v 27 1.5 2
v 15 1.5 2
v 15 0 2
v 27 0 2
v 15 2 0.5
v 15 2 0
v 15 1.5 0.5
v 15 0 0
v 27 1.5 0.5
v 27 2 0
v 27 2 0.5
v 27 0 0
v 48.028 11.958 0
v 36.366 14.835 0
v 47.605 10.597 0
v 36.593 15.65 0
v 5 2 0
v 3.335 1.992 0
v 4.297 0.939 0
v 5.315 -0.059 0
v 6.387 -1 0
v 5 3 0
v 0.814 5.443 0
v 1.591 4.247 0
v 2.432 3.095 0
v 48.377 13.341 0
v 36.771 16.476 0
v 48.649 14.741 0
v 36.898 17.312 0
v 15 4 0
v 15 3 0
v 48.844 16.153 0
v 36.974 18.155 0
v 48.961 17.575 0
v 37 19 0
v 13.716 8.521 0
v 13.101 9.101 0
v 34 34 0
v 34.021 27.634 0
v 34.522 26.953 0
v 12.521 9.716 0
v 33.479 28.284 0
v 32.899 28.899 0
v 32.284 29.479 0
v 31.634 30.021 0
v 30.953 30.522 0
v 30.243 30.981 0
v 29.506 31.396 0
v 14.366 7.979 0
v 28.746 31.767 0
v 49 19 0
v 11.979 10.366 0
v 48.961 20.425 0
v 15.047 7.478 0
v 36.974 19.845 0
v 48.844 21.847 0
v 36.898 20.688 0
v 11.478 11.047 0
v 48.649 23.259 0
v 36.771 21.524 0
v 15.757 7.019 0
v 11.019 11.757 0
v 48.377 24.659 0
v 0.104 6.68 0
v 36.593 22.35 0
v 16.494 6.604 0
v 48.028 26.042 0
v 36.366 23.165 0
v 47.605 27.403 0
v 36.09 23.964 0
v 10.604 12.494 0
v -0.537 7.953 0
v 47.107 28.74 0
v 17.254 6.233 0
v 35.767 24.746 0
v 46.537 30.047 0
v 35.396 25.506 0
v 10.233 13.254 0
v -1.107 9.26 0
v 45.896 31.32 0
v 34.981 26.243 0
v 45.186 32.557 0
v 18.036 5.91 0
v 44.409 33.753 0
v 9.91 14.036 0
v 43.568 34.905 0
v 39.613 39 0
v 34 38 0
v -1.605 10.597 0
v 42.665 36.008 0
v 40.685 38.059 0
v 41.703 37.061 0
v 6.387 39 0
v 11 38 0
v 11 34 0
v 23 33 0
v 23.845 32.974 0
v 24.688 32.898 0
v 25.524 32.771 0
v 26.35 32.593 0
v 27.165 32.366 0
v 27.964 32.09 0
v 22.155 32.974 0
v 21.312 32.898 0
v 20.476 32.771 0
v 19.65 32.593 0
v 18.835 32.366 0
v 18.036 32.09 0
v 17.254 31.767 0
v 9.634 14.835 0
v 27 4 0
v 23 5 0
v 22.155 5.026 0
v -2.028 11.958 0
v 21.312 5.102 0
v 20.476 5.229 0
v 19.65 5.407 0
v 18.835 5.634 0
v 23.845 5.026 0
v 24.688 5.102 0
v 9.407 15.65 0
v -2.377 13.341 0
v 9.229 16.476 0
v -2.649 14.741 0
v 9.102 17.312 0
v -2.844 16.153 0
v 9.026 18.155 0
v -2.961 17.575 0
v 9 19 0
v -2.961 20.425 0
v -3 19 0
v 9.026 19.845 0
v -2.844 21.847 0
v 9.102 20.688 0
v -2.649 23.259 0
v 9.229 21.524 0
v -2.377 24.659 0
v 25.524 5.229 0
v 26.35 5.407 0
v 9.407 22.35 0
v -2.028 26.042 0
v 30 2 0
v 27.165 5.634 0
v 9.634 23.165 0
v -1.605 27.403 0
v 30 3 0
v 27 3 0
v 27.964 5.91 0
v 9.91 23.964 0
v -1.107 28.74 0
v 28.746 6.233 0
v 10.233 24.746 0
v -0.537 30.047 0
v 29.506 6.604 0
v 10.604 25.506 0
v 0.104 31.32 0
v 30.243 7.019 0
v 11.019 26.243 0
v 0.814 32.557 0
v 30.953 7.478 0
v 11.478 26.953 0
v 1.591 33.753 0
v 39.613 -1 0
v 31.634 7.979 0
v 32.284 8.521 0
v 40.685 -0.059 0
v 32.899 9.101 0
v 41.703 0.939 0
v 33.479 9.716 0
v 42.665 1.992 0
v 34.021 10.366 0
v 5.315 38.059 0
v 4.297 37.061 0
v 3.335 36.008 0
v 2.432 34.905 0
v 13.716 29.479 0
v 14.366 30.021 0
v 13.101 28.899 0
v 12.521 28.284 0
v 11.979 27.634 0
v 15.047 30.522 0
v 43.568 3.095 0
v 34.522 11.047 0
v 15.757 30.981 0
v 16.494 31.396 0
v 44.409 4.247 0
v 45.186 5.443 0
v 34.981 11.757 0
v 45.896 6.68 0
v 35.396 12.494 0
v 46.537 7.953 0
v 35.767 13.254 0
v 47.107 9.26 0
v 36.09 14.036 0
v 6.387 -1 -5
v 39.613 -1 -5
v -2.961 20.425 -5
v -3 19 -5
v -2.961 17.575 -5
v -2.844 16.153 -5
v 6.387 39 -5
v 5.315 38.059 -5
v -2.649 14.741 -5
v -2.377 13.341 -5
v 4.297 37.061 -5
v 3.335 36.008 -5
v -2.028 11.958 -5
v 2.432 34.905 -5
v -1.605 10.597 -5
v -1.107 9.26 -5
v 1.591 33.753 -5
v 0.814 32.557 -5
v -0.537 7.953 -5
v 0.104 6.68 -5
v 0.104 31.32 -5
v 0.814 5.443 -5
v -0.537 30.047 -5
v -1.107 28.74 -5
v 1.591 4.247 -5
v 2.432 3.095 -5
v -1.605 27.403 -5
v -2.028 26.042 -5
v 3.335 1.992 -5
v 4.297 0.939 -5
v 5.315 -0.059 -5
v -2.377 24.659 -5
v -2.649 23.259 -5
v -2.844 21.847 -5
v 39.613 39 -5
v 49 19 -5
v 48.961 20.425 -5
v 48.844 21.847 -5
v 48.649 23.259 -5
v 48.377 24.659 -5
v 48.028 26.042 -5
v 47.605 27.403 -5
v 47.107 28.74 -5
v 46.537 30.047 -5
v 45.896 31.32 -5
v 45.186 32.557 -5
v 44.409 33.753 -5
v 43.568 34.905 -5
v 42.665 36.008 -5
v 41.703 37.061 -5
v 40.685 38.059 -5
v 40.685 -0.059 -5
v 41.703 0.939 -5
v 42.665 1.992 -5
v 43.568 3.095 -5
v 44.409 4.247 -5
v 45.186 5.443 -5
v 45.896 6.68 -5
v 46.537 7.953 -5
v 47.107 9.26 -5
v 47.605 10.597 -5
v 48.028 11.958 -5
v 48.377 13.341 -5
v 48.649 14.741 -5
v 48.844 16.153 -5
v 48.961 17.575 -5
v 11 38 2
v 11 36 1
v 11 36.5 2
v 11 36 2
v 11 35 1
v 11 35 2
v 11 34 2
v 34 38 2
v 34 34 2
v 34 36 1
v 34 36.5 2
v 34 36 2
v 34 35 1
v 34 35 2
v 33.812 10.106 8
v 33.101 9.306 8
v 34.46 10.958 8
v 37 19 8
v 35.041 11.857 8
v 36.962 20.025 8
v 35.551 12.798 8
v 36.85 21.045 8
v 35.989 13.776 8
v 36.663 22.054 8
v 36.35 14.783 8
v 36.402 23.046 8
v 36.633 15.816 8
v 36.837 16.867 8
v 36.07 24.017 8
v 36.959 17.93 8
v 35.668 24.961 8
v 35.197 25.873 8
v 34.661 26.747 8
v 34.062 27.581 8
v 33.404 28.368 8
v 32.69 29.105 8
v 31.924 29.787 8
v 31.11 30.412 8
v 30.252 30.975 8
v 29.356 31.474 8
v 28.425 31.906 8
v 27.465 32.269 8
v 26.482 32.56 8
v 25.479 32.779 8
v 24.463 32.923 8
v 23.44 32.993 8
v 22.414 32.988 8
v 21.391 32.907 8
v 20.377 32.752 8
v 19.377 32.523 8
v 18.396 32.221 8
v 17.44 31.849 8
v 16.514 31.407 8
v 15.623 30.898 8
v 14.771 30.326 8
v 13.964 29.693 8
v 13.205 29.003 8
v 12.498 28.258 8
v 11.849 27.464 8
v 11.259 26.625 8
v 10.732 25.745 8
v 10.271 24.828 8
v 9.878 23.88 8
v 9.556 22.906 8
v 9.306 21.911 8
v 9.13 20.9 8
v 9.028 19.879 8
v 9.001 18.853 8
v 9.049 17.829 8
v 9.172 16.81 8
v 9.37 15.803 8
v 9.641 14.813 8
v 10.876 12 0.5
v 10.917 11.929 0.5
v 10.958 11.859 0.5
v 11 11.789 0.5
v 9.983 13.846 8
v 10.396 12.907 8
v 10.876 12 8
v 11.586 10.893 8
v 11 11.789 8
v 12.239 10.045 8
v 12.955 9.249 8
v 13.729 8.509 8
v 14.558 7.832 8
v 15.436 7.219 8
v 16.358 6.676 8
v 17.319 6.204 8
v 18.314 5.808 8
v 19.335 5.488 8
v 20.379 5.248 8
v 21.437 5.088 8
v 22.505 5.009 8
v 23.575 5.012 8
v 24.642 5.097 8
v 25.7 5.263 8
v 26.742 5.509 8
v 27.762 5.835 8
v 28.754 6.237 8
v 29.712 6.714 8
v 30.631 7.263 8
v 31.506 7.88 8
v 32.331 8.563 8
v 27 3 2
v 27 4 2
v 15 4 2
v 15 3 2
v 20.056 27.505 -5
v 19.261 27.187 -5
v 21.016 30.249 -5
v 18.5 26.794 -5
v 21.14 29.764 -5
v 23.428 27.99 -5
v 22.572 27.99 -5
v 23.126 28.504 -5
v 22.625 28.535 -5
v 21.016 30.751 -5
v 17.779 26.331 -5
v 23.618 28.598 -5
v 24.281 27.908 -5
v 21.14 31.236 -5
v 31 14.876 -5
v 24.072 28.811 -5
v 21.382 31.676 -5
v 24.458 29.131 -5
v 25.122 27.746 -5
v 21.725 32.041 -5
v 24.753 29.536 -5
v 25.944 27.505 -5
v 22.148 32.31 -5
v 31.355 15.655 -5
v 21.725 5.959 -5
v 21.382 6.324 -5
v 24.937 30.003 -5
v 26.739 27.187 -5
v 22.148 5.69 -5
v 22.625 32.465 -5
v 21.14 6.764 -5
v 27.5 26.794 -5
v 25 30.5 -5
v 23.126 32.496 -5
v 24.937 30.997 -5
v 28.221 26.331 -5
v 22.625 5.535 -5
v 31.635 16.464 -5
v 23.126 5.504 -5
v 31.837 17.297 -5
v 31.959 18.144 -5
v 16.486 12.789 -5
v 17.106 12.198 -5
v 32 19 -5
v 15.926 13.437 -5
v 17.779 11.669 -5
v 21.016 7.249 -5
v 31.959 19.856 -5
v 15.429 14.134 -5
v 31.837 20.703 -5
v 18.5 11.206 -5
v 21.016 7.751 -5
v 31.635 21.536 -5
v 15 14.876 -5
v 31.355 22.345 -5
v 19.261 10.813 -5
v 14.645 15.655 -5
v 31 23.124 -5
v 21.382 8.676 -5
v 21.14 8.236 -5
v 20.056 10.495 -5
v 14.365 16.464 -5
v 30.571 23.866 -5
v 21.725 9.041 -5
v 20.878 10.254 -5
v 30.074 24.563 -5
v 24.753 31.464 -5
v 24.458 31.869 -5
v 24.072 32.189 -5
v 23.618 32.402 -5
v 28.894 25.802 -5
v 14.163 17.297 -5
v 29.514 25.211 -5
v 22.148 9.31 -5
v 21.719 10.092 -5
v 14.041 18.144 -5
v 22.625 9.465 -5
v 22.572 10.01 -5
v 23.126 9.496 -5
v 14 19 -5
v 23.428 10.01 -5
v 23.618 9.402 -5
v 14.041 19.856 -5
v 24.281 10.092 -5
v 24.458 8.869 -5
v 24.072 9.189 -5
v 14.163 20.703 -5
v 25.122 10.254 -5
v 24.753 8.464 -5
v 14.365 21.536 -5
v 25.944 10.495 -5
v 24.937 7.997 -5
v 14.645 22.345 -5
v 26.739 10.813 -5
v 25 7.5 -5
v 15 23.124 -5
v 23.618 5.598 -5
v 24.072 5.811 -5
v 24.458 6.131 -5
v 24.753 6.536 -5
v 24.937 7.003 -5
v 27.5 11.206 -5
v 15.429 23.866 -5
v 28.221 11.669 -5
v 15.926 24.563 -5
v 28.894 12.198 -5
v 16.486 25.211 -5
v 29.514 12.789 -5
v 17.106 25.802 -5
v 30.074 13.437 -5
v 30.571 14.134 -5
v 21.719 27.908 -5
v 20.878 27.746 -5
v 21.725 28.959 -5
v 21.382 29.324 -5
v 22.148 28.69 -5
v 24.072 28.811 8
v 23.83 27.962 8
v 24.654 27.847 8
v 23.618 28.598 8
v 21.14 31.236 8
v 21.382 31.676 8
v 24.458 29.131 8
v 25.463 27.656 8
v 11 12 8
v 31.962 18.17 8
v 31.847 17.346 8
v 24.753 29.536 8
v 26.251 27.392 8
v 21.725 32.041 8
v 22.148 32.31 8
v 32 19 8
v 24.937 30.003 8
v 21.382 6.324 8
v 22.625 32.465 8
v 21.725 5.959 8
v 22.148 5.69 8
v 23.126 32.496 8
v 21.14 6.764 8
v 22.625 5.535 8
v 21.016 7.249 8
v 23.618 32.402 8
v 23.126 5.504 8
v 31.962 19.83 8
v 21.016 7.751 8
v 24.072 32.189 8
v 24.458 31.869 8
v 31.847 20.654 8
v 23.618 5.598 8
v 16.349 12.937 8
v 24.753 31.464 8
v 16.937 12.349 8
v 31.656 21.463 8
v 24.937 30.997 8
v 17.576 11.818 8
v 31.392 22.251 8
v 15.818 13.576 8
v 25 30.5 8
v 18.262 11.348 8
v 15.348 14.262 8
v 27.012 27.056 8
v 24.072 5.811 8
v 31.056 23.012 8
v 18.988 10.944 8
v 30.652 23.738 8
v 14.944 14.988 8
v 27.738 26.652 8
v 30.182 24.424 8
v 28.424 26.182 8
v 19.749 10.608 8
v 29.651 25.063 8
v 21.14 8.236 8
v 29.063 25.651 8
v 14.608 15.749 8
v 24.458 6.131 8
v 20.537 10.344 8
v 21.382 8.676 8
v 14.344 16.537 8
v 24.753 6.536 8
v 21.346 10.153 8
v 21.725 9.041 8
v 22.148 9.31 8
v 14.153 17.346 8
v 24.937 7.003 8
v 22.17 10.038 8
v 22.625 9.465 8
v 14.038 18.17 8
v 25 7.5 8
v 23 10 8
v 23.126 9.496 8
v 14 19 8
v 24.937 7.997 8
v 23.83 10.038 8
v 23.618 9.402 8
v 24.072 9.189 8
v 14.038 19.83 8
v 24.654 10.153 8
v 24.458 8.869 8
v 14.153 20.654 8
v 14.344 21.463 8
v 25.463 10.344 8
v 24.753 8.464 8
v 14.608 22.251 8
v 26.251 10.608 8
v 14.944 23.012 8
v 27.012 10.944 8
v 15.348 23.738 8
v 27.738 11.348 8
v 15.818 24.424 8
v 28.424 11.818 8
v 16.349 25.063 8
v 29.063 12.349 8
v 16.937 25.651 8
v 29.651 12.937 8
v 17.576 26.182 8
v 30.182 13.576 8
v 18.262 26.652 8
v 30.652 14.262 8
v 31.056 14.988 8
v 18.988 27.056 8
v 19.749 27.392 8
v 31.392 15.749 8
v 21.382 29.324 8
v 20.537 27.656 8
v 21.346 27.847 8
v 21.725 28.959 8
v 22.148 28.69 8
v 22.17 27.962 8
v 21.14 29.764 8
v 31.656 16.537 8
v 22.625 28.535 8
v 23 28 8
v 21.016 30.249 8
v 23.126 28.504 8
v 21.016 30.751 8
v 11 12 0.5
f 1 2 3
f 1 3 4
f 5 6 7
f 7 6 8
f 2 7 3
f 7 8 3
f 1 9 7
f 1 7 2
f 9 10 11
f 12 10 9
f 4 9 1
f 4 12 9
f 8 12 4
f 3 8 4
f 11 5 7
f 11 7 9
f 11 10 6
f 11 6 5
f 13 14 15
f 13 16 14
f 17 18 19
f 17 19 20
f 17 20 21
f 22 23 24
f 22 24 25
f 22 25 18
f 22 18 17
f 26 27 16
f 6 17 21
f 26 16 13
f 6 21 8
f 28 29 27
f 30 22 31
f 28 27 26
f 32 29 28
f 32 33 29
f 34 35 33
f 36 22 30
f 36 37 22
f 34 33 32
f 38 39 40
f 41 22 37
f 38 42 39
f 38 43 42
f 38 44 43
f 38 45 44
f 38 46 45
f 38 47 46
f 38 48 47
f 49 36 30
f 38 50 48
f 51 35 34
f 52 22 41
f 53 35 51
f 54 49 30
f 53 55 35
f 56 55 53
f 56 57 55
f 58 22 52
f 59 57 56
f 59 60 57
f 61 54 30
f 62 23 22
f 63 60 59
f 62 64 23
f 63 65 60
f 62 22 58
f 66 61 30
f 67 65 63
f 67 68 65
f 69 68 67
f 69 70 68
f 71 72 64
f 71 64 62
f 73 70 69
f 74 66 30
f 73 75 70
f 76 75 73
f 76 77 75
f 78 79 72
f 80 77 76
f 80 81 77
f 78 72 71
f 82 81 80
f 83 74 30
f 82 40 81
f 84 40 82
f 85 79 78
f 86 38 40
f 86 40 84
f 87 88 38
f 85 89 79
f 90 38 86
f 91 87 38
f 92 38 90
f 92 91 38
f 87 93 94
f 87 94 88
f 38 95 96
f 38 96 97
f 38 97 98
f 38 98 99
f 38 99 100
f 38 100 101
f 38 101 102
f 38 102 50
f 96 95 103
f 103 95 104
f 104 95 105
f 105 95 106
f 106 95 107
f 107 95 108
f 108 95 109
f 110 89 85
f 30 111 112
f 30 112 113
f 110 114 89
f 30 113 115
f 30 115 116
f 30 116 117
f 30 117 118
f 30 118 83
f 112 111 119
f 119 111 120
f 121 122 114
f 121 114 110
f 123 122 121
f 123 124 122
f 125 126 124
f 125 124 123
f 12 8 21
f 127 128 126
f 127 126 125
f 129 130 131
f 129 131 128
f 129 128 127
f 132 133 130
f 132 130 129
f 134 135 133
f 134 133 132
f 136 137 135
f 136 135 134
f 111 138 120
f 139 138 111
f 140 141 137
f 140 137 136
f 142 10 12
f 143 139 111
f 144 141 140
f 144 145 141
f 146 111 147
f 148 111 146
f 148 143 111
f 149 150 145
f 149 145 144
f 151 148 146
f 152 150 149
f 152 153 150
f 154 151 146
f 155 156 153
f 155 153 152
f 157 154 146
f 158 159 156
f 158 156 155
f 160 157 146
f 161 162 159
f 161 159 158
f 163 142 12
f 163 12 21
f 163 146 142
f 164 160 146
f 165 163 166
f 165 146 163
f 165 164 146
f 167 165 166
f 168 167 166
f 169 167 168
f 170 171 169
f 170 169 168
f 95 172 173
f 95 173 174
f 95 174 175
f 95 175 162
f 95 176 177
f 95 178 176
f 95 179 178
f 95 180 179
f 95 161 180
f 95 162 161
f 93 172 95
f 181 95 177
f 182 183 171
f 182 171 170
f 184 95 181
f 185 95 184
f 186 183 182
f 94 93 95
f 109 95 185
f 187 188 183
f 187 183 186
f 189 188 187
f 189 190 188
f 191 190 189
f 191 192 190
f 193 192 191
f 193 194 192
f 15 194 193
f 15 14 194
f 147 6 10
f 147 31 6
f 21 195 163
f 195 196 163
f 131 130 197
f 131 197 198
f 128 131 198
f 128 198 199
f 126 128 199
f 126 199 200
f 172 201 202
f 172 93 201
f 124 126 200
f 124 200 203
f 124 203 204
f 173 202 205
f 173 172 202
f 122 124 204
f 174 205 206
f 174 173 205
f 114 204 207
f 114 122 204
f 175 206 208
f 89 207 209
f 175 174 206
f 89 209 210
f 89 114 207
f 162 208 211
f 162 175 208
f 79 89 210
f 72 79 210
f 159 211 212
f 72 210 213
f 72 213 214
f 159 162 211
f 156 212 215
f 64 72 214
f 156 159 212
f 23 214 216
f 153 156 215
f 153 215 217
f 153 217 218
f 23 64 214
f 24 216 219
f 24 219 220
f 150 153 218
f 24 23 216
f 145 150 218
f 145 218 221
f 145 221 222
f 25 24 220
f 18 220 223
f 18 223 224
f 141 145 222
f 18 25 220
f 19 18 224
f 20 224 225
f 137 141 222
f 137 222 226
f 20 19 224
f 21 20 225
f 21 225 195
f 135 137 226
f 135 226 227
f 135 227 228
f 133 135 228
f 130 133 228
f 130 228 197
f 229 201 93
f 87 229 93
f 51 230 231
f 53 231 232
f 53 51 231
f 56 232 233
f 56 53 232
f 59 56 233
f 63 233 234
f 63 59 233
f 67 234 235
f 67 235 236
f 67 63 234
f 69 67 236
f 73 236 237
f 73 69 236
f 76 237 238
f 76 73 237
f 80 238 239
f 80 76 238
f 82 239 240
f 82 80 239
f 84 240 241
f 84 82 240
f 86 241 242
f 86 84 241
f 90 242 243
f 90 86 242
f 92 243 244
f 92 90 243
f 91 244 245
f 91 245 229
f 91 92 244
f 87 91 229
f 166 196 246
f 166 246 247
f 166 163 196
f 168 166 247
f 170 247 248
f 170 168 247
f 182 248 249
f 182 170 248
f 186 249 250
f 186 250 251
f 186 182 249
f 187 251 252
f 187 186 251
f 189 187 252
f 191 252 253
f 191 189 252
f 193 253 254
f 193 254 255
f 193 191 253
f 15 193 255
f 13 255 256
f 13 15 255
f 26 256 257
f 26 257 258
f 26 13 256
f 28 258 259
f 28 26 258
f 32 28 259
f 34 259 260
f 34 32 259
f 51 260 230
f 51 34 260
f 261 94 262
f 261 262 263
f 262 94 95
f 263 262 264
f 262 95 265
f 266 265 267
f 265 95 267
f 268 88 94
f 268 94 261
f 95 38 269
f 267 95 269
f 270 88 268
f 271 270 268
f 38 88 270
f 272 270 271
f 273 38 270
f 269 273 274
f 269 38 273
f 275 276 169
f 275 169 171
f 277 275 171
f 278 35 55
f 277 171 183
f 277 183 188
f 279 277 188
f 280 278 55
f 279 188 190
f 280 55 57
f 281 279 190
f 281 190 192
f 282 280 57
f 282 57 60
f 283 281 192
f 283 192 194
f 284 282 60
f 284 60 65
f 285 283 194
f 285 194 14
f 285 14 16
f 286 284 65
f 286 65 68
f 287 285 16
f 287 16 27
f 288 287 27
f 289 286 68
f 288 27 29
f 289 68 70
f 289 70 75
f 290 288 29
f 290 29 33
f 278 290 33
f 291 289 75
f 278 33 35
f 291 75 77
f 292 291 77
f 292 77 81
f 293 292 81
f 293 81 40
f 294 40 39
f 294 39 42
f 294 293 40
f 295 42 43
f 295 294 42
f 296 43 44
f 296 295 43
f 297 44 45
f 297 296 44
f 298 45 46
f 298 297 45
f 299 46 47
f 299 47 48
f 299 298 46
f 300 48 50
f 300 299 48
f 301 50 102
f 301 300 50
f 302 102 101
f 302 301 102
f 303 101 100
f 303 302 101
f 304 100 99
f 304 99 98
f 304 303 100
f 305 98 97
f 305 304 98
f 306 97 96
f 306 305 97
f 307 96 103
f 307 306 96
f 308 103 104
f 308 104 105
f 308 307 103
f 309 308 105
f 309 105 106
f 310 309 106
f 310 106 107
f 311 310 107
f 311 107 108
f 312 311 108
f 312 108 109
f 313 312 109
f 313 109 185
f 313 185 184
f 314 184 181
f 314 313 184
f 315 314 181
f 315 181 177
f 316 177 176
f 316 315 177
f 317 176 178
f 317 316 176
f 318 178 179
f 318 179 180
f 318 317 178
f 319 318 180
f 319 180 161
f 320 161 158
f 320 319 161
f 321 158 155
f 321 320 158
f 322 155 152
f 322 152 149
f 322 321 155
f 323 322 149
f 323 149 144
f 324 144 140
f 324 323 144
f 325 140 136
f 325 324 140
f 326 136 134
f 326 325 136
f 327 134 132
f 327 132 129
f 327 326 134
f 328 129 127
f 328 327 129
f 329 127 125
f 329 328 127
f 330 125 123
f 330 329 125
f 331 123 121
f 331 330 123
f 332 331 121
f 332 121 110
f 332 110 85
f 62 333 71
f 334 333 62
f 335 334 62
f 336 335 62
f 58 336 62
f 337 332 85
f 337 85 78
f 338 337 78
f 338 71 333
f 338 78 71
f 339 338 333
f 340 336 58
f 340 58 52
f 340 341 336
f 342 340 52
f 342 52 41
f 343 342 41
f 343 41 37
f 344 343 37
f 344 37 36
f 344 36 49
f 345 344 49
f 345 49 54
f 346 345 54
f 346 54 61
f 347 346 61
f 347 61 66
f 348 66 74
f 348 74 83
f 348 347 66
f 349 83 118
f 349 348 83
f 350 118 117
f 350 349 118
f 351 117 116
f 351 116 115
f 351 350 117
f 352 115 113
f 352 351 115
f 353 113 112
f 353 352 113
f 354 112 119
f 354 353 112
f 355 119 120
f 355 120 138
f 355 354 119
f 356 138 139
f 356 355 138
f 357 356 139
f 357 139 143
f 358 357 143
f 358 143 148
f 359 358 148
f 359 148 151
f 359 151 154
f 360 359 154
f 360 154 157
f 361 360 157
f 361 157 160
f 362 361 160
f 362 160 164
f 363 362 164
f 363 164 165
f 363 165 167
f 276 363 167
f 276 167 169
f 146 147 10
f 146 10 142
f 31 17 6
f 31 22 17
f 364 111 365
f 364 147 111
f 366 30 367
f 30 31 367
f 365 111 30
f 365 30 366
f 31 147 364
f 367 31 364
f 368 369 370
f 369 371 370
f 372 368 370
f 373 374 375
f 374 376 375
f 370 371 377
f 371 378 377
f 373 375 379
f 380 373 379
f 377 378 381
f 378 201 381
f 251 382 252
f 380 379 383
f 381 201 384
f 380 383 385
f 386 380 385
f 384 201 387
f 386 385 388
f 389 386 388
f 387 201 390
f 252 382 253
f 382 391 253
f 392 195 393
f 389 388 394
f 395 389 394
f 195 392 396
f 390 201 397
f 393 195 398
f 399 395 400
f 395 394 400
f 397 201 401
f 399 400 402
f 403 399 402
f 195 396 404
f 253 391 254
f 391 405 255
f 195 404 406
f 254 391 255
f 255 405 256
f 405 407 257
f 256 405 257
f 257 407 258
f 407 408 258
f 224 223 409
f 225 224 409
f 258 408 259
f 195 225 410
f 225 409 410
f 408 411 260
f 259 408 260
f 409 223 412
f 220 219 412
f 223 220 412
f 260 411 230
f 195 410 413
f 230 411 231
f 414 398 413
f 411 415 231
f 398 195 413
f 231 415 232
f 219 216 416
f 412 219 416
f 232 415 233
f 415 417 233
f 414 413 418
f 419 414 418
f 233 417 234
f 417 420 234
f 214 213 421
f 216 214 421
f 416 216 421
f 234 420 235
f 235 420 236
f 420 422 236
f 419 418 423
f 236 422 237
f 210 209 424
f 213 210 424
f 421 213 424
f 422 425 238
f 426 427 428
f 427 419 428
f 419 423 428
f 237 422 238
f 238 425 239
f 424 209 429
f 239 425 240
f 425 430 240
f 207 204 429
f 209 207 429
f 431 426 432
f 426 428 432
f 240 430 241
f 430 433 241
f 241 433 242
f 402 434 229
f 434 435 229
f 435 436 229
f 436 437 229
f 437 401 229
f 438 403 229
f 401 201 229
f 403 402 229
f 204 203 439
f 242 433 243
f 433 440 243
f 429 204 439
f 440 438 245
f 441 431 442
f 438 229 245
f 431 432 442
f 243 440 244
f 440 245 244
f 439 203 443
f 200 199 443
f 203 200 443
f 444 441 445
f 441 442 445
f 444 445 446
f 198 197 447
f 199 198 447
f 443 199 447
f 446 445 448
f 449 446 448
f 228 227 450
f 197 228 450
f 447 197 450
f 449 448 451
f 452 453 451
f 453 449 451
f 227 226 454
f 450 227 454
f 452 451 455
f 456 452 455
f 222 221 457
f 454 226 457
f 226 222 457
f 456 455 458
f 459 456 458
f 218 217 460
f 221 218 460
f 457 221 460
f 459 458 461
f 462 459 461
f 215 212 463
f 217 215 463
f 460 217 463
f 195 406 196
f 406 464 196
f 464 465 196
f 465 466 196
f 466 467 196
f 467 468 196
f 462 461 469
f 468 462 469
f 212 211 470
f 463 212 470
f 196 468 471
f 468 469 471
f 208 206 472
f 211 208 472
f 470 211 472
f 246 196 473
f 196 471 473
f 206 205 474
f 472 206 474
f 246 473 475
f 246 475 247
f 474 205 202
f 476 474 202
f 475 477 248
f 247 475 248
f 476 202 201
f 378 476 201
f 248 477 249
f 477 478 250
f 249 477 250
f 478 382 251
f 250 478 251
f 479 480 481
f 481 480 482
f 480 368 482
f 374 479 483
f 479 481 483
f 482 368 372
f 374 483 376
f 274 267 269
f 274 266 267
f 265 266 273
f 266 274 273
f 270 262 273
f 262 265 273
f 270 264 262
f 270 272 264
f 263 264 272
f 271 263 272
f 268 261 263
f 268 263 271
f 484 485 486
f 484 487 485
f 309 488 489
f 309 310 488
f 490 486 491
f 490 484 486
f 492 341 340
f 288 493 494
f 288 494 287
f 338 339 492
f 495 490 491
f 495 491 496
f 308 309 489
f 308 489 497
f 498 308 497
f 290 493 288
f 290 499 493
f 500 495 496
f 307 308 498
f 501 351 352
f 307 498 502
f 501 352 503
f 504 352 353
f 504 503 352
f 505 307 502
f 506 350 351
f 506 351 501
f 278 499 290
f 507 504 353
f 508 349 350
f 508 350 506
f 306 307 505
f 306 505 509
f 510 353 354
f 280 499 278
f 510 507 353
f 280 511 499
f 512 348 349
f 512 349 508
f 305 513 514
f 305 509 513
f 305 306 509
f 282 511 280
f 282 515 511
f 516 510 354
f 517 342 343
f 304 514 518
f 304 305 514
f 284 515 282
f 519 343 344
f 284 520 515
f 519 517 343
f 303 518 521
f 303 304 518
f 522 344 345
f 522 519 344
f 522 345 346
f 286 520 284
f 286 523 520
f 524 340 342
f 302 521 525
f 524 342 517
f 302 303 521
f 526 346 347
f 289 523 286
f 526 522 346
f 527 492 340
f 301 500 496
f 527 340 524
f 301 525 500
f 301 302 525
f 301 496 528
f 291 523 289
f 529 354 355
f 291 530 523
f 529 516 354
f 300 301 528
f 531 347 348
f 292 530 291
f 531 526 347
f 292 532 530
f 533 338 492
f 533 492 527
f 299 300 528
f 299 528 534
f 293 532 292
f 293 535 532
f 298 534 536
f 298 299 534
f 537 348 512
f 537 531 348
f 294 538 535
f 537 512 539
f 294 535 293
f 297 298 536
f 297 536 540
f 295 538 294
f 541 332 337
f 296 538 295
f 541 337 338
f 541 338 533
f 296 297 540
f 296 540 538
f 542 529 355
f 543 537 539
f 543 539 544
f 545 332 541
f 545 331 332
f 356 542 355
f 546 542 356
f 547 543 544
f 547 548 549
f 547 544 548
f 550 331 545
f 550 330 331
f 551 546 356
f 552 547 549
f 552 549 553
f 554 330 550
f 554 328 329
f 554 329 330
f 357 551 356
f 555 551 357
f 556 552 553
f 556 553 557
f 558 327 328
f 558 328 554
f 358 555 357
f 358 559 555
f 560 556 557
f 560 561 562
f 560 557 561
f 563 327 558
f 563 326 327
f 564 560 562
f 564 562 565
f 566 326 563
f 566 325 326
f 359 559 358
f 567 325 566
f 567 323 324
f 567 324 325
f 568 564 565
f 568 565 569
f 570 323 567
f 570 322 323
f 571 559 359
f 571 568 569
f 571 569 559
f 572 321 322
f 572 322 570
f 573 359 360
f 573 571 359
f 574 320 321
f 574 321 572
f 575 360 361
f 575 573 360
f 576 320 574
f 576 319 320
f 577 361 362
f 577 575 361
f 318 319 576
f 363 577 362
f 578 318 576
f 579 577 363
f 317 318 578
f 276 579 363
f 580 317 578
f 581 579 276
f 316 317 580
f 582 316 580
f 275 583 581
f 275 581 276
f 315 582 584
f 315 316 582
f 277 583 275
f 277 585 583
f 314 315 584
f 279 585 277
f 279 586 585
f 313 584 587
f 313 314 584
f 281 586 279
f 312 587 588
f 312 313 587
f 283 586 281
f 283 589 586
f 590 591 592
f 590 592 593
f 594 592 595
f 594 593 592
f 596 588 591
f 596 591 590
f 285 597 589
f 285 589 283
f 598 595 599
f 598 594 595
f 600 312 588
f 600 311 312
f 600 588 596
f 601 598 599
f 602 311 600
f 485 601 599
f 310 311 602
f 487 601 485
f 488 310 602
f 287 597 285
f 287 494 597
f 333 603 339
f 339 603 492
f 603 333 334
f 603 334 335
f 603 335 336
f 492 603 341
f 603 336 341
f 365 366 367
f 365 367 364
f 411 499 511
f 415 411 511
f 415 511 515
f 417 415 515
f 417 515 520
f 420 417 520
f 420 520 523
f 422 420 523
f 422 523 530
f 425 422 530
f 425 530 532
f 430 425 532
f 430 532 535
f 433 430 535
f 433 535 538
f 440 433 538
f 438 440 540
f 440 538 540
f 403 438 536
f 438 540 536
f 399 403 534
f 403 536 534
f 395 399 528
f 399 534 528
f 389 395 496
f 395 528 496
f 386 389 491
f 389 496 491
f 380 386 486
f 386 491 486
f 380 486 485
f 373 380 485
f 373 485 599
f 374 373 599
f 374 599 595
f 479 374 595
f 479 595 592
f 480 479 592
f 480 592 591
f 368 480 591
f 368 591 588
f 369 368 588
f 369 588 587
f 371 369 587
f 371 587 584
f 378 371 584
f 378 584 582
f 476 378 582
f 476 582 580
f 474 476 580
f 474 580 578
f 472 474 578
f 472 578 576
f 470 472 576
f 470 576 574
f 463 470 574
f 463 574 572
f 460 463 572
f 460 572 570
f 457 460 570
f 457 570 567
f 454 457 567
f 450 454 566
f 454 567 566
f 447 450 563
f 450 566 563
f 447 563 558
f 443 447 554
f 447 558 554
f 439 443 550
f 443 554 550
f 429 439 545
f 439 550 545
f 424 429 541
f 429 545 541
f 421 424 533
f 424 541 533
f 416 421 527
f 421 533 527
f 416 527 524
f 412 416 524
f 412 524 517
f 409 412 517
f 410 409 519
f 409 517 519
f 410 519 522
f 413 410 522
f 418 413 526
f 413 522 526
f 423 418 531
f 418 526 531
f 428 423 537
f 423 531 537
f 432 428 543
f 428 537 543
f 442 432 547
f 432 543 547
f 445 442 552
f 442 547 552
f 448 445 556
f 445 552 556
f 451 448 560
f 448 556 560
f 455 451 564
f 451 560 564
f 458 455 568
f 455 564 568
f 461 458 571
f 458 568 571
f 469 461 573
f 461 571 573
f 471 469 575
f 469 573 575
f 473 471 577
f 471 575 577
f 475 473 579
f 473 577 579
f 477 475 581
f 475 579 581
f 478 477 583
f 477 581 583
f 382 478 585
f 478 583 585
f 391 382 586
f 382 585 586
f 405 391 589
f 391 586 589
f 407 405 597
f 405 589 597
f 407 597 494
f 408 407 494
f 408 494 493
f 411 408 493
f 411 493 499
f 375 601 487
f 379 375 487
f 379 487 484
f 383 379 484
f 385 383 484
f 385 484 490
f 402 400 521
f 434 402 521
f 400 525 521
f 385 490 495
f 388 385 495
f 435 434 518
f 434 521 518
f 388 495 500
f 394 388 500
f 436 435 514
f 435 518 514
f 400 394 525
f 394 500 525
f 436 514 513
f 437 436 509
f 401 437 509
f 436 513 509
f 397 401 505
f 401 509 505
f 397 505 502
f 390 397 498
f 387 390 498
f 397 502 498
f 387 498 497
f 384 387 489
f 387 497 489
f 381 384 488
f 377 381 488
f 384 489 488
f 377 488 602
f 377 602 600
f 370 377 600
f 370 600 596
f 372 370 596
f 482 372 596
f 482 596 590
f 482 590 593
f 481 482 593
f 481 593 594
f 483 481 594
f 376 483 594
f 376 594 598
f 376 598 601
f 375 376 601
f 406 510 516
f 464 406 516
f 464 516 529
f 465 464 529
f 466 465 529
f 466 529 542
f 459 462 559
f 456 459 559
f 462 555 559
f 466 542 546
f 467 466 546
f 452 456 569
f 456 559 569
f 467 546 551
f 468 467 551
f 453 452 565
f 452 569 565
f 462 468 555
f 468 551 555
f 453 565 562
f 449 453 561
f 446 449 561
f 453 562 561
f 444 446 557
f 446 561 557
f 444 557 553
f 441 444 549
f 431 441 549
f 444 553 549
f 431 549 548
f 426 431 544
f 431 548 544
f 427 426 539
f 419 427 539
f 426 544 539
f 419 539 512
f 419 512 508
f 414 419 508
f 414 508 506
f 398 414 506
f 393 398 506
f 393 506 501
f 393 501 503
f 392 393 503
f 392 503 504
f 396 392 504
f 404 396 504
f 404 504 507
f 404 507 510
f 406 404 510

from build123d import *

# Parameters (mm, degrees)
CYLINDER004_R             = 2
CYLINDER004_DEPTH         = 22
CYLINDER005_R             = 2
CYLINDER005_DEPTH         = 22
BOX009_W                  = 46
BOX009_H                  = 10
BOX009_DEPTH              = 10
BOX007_W                  = 46
BOX007_H                  = 10
BOX007_DEPTH              = 10
BOX008_W                  = 54
BOX008_H                  = 53
BOX008_DEPTH              = 15
BOX002_W                  = 5
BOX002_H                  = 10
BOX002_DEPTH              = 13
BOX001_W                  = 23
BOX001_H                  = 1
BOX001_DEPTH              = 13
BOX_W                     = 25
BOX_H                     = 1
BOX_DEPTH                 = 14
BOX003_W                  = 38
BOX003_H                  = 1
BOX003_DEPTH              = 12
BOX004_W                  = 34
BOX004_H                  = 1
BOX004_DEPTH              = 10
FUSION001_PLACEMENT_ANGLE = 180
CYLINDER_R                = 9
CYLINDER_DEPTH            = 28
CYLINDER002_R             = 26
CYLINDER002_DEPTH         = 5
CYLINDER001_R             = 14
CYLINDER001_DEPTH         = 14
CYLINDER003_R             = 26
CYLINDER003_DEPTH         = 5
BOX005_W                  = 23
BOX005_H                  = 4
BOX005_DEPTH              = 2
BOX006_W                  = 12
BOX006_H                  = 4
BOX006_DEPTH              = 2


with BuildPart() as cilindro004:
    # Cylinder004 → Cylinder004 (new body)
    with BuildSketch(Plane(origin=(23, 7.5, -10), x_dir=(1, 0, 0), z_dir=(0, 0, 1))):
        Circle(CYLINDER004_R)
    extrude(amount=CYLINDER004_DEPTH)


with BuildPart() as cilindro005:
    # Cylinder005 → Cylinder005 (new body)
    with BuildSketch(Plane(origin=(23, 30.5, -10), x_dir=(1, 0, 0), z_dir=(0, 0, 1))):
        Circle(CYLINDER005_R)
    extrude(amount=CYLINDER005_DEPTH)


with BuildPart() as cubo009:
    # Box009 → Box009 (new body)
    with BuildSketch(Plane(origin=(0, 39, -6), x_dir=(1, 0, 0), z_dir=(0, 0, 1))):
        with Locations((23, 5)):
            Rectangle(BOX009_W, BOX009_H)
    extrude(amount=BOX009_DEPTH)


with BuildPart() as cubo007:
    # Box007 → Box007 (new body)
    with BuildSketch(Plane(origin=(0, -11, -6), x_dir=(1, 0, 0), z_dir=(0, 0, 1))):
        with Locations((23, 5)):
            Rectangle(BOX007_W, BOX007_H)
    extrude(amount=BOX007_DEPTH)


with BuildPart() as cubo008:
    # Box008 → Box008 (new body)
    with BuildSketch(Plane(origin=(-4, -8, 8), x_dir=(1, 0, 0), z_dir=(0, 0, 1))):
        with Locations((27, 26.5)):
            Rectangle(BOX008_W, BOX008_H)
    extrude(amount=BOX008_DEPTH)


with BuildPart() as cubo002:
    # Box002 → Box002 (new body)
    with BuildSketch(Plane(origin=(1, 0, 0.5), x_dir=(1, 0, 0), z_dir=(0, 0, 1))):
        with Locations((2.5, 5)):
            Rectangle(BOX002_W, BOX002_H)
    extrude(amount=BOX002_DEPTH)


with BuildPart() as cubo001:
    # Box001 → Box001 (new body)
    with BuildSketch(Plane(origin=(0.5, -0.5, 0.5), x_dir=(1, 0, 0), z_dir=(0, 0, 1))):
        with Locations((11.5, 0.5)):
            Rectangle(BOX001_W, BOX001_H)
    extrude(amount=BOX001_DEPTH)


with BuildPart() as fusion:
    # Box → Box (new body)
    with BuildSketch(Plane.XY):
        with Locations((12.5, 0.5)):
            Rectangle(BOX_W, BOX_H)
    extrude(amount=BOX_DEPTH)

    # Fusion: union Cubo002, Cubo001
    add(cubo002.part)
    add(cubo001.part)


with BuildPart() as fusion_1:
    # Fusion placement: moved
    add(fusion.part.moved(Location((5, 2, 0))))


with BuildPart() as cubo003:
    # Box003 → Box003 (new body)
    with BuildSketch(Plane.XY):
        with Locations((19, 0.5)):
            Rectangle(BOX003_W, BOX003_H)
    extrude(amount=BOX003_DEPTH)


with BuildPart() as display:
    # Box004 → Box004 (new body)
    with BuildSketch(Plane(origin=(3, -0.5, 1), x_dir=(1, 0, 0), z_dir=(0, 0, 1))):
        with Locations((17, 0.5)):
            Rectangle(BOX004_W, BOX004_H)
    extrude(amount=BOX004_DEPTH)

    # Fusion001: union Cubo003
    add(cubo003.part)


with BuildPart() as display_1:
    # Fusion001 placement: moved
    add(display.part.moved(Location((4, 36, 13))).rotate(Axis((4, 36, 13), (1, 0, 0)), FUSION001_PLACEMENT_ANGLE))


with BuildPart() as cilindro:
    # Cylinder → Cylinder (new body)
    with BuildSketch(Plane(origin=(23, 19, -7), x_dir=(1, 0, 0), z_dir=(0, 0, 1))):
        Circle(CYLINDER_R)
    extrude(amount=CYLINDER_DEPTH)


with BuildPart() as cilindro002:
    # Cylinder002 → Cylinder002 (new body)
    with BuildSketch(Plane(origin=(23, 19, -5), x_dir=(1, 0, 0), z_dir=(0, 0, 1))):
        Circle(CYLINDER002_R)
    extrude(amount=CYLINDER002_DEPTH)


with BuildPart() as cilindro001:
    # Cylinder001 → Cylinder001 (new body)
    with BuildSketch(Plane(origin=(23, 19, 0), x_dir=(1, 0, 0), z_dir=(0, 0, 1))):
        Circle(CYLINDER001_R)
    extrude(amount=CYLINDER001_DEPTH)


with BuildPart() as cut:
    # Cylinder003 → Cylinder003 (new body)
    with BuildSketch(Plane(origin=(23, 19, 14), x_dir=(1, 0, 0), z_dir=(0, 0, 1))):
        Circle(CYLINDER003_R)
    extrude(amount=CYLINDER003_DEPTH)

    # Fusion002: union Cilindro002, Cilindro001
    add(cilindro002.part)
    add(cilindro001.part)

    # Cut: cut Cilindro
    add(cilindro.part, mode=Mode.SUBTRACT)


with BuildPart() as cut001:
    # Box005 → Box005 (new body)
    with BuildSketch(Plane(origin=(11, 34, 0), x_dir=(1, 0, 0), z_dir=(0, 0, 1))):
        with Locations((11.5, 2)):
            Rectangle(BOX005_W, BOX005_H)
    extrude(amount=BOX005_DEPTH)

    # Fusion003: union Cut
    add(cut.part)

    # Cut001: cut Display
    add(display_1.part, mode=Mode.SUBTRACT)


with BuildPart() as cut007:
    # Box006 → Box006 (new body)
    with BuildSketch(Plane(origin=(15, 0, 0), x_dir=(1, 0, 0), z_dir=(0, 0, 1))):
        with Locations((6, 2)):
            Rectangle(BOX006_W, BOX006_H)
    extrude(amount=BOX006_DEPTH)

    # Fusion004: union Cut001
    add(cut001.part)

    # Cut002: cut Fusion
    add(fusion_1.part, mode=Mode.SUBTRACT)

    # Cut003: cut Cubo008
    add(cubo008.part, mode=Mode.SUBTRACT)

    # Cut004: cut Cubo007
    add(cubo007.part, mode=Mode.SUBTRACT)

    # Cut005: cut Cubo009
    add(cubo009.part, mode=Mode.SUBTRACT)

    # Cut006: cut Cilindro005
    add(cilindro005.part, mode=Mode.SUBTRACT)

    # Cut007: cut Cilindro004
    add(cilindro004.part, mode=Mode.SUBTRACT)


solid = cut007.part
